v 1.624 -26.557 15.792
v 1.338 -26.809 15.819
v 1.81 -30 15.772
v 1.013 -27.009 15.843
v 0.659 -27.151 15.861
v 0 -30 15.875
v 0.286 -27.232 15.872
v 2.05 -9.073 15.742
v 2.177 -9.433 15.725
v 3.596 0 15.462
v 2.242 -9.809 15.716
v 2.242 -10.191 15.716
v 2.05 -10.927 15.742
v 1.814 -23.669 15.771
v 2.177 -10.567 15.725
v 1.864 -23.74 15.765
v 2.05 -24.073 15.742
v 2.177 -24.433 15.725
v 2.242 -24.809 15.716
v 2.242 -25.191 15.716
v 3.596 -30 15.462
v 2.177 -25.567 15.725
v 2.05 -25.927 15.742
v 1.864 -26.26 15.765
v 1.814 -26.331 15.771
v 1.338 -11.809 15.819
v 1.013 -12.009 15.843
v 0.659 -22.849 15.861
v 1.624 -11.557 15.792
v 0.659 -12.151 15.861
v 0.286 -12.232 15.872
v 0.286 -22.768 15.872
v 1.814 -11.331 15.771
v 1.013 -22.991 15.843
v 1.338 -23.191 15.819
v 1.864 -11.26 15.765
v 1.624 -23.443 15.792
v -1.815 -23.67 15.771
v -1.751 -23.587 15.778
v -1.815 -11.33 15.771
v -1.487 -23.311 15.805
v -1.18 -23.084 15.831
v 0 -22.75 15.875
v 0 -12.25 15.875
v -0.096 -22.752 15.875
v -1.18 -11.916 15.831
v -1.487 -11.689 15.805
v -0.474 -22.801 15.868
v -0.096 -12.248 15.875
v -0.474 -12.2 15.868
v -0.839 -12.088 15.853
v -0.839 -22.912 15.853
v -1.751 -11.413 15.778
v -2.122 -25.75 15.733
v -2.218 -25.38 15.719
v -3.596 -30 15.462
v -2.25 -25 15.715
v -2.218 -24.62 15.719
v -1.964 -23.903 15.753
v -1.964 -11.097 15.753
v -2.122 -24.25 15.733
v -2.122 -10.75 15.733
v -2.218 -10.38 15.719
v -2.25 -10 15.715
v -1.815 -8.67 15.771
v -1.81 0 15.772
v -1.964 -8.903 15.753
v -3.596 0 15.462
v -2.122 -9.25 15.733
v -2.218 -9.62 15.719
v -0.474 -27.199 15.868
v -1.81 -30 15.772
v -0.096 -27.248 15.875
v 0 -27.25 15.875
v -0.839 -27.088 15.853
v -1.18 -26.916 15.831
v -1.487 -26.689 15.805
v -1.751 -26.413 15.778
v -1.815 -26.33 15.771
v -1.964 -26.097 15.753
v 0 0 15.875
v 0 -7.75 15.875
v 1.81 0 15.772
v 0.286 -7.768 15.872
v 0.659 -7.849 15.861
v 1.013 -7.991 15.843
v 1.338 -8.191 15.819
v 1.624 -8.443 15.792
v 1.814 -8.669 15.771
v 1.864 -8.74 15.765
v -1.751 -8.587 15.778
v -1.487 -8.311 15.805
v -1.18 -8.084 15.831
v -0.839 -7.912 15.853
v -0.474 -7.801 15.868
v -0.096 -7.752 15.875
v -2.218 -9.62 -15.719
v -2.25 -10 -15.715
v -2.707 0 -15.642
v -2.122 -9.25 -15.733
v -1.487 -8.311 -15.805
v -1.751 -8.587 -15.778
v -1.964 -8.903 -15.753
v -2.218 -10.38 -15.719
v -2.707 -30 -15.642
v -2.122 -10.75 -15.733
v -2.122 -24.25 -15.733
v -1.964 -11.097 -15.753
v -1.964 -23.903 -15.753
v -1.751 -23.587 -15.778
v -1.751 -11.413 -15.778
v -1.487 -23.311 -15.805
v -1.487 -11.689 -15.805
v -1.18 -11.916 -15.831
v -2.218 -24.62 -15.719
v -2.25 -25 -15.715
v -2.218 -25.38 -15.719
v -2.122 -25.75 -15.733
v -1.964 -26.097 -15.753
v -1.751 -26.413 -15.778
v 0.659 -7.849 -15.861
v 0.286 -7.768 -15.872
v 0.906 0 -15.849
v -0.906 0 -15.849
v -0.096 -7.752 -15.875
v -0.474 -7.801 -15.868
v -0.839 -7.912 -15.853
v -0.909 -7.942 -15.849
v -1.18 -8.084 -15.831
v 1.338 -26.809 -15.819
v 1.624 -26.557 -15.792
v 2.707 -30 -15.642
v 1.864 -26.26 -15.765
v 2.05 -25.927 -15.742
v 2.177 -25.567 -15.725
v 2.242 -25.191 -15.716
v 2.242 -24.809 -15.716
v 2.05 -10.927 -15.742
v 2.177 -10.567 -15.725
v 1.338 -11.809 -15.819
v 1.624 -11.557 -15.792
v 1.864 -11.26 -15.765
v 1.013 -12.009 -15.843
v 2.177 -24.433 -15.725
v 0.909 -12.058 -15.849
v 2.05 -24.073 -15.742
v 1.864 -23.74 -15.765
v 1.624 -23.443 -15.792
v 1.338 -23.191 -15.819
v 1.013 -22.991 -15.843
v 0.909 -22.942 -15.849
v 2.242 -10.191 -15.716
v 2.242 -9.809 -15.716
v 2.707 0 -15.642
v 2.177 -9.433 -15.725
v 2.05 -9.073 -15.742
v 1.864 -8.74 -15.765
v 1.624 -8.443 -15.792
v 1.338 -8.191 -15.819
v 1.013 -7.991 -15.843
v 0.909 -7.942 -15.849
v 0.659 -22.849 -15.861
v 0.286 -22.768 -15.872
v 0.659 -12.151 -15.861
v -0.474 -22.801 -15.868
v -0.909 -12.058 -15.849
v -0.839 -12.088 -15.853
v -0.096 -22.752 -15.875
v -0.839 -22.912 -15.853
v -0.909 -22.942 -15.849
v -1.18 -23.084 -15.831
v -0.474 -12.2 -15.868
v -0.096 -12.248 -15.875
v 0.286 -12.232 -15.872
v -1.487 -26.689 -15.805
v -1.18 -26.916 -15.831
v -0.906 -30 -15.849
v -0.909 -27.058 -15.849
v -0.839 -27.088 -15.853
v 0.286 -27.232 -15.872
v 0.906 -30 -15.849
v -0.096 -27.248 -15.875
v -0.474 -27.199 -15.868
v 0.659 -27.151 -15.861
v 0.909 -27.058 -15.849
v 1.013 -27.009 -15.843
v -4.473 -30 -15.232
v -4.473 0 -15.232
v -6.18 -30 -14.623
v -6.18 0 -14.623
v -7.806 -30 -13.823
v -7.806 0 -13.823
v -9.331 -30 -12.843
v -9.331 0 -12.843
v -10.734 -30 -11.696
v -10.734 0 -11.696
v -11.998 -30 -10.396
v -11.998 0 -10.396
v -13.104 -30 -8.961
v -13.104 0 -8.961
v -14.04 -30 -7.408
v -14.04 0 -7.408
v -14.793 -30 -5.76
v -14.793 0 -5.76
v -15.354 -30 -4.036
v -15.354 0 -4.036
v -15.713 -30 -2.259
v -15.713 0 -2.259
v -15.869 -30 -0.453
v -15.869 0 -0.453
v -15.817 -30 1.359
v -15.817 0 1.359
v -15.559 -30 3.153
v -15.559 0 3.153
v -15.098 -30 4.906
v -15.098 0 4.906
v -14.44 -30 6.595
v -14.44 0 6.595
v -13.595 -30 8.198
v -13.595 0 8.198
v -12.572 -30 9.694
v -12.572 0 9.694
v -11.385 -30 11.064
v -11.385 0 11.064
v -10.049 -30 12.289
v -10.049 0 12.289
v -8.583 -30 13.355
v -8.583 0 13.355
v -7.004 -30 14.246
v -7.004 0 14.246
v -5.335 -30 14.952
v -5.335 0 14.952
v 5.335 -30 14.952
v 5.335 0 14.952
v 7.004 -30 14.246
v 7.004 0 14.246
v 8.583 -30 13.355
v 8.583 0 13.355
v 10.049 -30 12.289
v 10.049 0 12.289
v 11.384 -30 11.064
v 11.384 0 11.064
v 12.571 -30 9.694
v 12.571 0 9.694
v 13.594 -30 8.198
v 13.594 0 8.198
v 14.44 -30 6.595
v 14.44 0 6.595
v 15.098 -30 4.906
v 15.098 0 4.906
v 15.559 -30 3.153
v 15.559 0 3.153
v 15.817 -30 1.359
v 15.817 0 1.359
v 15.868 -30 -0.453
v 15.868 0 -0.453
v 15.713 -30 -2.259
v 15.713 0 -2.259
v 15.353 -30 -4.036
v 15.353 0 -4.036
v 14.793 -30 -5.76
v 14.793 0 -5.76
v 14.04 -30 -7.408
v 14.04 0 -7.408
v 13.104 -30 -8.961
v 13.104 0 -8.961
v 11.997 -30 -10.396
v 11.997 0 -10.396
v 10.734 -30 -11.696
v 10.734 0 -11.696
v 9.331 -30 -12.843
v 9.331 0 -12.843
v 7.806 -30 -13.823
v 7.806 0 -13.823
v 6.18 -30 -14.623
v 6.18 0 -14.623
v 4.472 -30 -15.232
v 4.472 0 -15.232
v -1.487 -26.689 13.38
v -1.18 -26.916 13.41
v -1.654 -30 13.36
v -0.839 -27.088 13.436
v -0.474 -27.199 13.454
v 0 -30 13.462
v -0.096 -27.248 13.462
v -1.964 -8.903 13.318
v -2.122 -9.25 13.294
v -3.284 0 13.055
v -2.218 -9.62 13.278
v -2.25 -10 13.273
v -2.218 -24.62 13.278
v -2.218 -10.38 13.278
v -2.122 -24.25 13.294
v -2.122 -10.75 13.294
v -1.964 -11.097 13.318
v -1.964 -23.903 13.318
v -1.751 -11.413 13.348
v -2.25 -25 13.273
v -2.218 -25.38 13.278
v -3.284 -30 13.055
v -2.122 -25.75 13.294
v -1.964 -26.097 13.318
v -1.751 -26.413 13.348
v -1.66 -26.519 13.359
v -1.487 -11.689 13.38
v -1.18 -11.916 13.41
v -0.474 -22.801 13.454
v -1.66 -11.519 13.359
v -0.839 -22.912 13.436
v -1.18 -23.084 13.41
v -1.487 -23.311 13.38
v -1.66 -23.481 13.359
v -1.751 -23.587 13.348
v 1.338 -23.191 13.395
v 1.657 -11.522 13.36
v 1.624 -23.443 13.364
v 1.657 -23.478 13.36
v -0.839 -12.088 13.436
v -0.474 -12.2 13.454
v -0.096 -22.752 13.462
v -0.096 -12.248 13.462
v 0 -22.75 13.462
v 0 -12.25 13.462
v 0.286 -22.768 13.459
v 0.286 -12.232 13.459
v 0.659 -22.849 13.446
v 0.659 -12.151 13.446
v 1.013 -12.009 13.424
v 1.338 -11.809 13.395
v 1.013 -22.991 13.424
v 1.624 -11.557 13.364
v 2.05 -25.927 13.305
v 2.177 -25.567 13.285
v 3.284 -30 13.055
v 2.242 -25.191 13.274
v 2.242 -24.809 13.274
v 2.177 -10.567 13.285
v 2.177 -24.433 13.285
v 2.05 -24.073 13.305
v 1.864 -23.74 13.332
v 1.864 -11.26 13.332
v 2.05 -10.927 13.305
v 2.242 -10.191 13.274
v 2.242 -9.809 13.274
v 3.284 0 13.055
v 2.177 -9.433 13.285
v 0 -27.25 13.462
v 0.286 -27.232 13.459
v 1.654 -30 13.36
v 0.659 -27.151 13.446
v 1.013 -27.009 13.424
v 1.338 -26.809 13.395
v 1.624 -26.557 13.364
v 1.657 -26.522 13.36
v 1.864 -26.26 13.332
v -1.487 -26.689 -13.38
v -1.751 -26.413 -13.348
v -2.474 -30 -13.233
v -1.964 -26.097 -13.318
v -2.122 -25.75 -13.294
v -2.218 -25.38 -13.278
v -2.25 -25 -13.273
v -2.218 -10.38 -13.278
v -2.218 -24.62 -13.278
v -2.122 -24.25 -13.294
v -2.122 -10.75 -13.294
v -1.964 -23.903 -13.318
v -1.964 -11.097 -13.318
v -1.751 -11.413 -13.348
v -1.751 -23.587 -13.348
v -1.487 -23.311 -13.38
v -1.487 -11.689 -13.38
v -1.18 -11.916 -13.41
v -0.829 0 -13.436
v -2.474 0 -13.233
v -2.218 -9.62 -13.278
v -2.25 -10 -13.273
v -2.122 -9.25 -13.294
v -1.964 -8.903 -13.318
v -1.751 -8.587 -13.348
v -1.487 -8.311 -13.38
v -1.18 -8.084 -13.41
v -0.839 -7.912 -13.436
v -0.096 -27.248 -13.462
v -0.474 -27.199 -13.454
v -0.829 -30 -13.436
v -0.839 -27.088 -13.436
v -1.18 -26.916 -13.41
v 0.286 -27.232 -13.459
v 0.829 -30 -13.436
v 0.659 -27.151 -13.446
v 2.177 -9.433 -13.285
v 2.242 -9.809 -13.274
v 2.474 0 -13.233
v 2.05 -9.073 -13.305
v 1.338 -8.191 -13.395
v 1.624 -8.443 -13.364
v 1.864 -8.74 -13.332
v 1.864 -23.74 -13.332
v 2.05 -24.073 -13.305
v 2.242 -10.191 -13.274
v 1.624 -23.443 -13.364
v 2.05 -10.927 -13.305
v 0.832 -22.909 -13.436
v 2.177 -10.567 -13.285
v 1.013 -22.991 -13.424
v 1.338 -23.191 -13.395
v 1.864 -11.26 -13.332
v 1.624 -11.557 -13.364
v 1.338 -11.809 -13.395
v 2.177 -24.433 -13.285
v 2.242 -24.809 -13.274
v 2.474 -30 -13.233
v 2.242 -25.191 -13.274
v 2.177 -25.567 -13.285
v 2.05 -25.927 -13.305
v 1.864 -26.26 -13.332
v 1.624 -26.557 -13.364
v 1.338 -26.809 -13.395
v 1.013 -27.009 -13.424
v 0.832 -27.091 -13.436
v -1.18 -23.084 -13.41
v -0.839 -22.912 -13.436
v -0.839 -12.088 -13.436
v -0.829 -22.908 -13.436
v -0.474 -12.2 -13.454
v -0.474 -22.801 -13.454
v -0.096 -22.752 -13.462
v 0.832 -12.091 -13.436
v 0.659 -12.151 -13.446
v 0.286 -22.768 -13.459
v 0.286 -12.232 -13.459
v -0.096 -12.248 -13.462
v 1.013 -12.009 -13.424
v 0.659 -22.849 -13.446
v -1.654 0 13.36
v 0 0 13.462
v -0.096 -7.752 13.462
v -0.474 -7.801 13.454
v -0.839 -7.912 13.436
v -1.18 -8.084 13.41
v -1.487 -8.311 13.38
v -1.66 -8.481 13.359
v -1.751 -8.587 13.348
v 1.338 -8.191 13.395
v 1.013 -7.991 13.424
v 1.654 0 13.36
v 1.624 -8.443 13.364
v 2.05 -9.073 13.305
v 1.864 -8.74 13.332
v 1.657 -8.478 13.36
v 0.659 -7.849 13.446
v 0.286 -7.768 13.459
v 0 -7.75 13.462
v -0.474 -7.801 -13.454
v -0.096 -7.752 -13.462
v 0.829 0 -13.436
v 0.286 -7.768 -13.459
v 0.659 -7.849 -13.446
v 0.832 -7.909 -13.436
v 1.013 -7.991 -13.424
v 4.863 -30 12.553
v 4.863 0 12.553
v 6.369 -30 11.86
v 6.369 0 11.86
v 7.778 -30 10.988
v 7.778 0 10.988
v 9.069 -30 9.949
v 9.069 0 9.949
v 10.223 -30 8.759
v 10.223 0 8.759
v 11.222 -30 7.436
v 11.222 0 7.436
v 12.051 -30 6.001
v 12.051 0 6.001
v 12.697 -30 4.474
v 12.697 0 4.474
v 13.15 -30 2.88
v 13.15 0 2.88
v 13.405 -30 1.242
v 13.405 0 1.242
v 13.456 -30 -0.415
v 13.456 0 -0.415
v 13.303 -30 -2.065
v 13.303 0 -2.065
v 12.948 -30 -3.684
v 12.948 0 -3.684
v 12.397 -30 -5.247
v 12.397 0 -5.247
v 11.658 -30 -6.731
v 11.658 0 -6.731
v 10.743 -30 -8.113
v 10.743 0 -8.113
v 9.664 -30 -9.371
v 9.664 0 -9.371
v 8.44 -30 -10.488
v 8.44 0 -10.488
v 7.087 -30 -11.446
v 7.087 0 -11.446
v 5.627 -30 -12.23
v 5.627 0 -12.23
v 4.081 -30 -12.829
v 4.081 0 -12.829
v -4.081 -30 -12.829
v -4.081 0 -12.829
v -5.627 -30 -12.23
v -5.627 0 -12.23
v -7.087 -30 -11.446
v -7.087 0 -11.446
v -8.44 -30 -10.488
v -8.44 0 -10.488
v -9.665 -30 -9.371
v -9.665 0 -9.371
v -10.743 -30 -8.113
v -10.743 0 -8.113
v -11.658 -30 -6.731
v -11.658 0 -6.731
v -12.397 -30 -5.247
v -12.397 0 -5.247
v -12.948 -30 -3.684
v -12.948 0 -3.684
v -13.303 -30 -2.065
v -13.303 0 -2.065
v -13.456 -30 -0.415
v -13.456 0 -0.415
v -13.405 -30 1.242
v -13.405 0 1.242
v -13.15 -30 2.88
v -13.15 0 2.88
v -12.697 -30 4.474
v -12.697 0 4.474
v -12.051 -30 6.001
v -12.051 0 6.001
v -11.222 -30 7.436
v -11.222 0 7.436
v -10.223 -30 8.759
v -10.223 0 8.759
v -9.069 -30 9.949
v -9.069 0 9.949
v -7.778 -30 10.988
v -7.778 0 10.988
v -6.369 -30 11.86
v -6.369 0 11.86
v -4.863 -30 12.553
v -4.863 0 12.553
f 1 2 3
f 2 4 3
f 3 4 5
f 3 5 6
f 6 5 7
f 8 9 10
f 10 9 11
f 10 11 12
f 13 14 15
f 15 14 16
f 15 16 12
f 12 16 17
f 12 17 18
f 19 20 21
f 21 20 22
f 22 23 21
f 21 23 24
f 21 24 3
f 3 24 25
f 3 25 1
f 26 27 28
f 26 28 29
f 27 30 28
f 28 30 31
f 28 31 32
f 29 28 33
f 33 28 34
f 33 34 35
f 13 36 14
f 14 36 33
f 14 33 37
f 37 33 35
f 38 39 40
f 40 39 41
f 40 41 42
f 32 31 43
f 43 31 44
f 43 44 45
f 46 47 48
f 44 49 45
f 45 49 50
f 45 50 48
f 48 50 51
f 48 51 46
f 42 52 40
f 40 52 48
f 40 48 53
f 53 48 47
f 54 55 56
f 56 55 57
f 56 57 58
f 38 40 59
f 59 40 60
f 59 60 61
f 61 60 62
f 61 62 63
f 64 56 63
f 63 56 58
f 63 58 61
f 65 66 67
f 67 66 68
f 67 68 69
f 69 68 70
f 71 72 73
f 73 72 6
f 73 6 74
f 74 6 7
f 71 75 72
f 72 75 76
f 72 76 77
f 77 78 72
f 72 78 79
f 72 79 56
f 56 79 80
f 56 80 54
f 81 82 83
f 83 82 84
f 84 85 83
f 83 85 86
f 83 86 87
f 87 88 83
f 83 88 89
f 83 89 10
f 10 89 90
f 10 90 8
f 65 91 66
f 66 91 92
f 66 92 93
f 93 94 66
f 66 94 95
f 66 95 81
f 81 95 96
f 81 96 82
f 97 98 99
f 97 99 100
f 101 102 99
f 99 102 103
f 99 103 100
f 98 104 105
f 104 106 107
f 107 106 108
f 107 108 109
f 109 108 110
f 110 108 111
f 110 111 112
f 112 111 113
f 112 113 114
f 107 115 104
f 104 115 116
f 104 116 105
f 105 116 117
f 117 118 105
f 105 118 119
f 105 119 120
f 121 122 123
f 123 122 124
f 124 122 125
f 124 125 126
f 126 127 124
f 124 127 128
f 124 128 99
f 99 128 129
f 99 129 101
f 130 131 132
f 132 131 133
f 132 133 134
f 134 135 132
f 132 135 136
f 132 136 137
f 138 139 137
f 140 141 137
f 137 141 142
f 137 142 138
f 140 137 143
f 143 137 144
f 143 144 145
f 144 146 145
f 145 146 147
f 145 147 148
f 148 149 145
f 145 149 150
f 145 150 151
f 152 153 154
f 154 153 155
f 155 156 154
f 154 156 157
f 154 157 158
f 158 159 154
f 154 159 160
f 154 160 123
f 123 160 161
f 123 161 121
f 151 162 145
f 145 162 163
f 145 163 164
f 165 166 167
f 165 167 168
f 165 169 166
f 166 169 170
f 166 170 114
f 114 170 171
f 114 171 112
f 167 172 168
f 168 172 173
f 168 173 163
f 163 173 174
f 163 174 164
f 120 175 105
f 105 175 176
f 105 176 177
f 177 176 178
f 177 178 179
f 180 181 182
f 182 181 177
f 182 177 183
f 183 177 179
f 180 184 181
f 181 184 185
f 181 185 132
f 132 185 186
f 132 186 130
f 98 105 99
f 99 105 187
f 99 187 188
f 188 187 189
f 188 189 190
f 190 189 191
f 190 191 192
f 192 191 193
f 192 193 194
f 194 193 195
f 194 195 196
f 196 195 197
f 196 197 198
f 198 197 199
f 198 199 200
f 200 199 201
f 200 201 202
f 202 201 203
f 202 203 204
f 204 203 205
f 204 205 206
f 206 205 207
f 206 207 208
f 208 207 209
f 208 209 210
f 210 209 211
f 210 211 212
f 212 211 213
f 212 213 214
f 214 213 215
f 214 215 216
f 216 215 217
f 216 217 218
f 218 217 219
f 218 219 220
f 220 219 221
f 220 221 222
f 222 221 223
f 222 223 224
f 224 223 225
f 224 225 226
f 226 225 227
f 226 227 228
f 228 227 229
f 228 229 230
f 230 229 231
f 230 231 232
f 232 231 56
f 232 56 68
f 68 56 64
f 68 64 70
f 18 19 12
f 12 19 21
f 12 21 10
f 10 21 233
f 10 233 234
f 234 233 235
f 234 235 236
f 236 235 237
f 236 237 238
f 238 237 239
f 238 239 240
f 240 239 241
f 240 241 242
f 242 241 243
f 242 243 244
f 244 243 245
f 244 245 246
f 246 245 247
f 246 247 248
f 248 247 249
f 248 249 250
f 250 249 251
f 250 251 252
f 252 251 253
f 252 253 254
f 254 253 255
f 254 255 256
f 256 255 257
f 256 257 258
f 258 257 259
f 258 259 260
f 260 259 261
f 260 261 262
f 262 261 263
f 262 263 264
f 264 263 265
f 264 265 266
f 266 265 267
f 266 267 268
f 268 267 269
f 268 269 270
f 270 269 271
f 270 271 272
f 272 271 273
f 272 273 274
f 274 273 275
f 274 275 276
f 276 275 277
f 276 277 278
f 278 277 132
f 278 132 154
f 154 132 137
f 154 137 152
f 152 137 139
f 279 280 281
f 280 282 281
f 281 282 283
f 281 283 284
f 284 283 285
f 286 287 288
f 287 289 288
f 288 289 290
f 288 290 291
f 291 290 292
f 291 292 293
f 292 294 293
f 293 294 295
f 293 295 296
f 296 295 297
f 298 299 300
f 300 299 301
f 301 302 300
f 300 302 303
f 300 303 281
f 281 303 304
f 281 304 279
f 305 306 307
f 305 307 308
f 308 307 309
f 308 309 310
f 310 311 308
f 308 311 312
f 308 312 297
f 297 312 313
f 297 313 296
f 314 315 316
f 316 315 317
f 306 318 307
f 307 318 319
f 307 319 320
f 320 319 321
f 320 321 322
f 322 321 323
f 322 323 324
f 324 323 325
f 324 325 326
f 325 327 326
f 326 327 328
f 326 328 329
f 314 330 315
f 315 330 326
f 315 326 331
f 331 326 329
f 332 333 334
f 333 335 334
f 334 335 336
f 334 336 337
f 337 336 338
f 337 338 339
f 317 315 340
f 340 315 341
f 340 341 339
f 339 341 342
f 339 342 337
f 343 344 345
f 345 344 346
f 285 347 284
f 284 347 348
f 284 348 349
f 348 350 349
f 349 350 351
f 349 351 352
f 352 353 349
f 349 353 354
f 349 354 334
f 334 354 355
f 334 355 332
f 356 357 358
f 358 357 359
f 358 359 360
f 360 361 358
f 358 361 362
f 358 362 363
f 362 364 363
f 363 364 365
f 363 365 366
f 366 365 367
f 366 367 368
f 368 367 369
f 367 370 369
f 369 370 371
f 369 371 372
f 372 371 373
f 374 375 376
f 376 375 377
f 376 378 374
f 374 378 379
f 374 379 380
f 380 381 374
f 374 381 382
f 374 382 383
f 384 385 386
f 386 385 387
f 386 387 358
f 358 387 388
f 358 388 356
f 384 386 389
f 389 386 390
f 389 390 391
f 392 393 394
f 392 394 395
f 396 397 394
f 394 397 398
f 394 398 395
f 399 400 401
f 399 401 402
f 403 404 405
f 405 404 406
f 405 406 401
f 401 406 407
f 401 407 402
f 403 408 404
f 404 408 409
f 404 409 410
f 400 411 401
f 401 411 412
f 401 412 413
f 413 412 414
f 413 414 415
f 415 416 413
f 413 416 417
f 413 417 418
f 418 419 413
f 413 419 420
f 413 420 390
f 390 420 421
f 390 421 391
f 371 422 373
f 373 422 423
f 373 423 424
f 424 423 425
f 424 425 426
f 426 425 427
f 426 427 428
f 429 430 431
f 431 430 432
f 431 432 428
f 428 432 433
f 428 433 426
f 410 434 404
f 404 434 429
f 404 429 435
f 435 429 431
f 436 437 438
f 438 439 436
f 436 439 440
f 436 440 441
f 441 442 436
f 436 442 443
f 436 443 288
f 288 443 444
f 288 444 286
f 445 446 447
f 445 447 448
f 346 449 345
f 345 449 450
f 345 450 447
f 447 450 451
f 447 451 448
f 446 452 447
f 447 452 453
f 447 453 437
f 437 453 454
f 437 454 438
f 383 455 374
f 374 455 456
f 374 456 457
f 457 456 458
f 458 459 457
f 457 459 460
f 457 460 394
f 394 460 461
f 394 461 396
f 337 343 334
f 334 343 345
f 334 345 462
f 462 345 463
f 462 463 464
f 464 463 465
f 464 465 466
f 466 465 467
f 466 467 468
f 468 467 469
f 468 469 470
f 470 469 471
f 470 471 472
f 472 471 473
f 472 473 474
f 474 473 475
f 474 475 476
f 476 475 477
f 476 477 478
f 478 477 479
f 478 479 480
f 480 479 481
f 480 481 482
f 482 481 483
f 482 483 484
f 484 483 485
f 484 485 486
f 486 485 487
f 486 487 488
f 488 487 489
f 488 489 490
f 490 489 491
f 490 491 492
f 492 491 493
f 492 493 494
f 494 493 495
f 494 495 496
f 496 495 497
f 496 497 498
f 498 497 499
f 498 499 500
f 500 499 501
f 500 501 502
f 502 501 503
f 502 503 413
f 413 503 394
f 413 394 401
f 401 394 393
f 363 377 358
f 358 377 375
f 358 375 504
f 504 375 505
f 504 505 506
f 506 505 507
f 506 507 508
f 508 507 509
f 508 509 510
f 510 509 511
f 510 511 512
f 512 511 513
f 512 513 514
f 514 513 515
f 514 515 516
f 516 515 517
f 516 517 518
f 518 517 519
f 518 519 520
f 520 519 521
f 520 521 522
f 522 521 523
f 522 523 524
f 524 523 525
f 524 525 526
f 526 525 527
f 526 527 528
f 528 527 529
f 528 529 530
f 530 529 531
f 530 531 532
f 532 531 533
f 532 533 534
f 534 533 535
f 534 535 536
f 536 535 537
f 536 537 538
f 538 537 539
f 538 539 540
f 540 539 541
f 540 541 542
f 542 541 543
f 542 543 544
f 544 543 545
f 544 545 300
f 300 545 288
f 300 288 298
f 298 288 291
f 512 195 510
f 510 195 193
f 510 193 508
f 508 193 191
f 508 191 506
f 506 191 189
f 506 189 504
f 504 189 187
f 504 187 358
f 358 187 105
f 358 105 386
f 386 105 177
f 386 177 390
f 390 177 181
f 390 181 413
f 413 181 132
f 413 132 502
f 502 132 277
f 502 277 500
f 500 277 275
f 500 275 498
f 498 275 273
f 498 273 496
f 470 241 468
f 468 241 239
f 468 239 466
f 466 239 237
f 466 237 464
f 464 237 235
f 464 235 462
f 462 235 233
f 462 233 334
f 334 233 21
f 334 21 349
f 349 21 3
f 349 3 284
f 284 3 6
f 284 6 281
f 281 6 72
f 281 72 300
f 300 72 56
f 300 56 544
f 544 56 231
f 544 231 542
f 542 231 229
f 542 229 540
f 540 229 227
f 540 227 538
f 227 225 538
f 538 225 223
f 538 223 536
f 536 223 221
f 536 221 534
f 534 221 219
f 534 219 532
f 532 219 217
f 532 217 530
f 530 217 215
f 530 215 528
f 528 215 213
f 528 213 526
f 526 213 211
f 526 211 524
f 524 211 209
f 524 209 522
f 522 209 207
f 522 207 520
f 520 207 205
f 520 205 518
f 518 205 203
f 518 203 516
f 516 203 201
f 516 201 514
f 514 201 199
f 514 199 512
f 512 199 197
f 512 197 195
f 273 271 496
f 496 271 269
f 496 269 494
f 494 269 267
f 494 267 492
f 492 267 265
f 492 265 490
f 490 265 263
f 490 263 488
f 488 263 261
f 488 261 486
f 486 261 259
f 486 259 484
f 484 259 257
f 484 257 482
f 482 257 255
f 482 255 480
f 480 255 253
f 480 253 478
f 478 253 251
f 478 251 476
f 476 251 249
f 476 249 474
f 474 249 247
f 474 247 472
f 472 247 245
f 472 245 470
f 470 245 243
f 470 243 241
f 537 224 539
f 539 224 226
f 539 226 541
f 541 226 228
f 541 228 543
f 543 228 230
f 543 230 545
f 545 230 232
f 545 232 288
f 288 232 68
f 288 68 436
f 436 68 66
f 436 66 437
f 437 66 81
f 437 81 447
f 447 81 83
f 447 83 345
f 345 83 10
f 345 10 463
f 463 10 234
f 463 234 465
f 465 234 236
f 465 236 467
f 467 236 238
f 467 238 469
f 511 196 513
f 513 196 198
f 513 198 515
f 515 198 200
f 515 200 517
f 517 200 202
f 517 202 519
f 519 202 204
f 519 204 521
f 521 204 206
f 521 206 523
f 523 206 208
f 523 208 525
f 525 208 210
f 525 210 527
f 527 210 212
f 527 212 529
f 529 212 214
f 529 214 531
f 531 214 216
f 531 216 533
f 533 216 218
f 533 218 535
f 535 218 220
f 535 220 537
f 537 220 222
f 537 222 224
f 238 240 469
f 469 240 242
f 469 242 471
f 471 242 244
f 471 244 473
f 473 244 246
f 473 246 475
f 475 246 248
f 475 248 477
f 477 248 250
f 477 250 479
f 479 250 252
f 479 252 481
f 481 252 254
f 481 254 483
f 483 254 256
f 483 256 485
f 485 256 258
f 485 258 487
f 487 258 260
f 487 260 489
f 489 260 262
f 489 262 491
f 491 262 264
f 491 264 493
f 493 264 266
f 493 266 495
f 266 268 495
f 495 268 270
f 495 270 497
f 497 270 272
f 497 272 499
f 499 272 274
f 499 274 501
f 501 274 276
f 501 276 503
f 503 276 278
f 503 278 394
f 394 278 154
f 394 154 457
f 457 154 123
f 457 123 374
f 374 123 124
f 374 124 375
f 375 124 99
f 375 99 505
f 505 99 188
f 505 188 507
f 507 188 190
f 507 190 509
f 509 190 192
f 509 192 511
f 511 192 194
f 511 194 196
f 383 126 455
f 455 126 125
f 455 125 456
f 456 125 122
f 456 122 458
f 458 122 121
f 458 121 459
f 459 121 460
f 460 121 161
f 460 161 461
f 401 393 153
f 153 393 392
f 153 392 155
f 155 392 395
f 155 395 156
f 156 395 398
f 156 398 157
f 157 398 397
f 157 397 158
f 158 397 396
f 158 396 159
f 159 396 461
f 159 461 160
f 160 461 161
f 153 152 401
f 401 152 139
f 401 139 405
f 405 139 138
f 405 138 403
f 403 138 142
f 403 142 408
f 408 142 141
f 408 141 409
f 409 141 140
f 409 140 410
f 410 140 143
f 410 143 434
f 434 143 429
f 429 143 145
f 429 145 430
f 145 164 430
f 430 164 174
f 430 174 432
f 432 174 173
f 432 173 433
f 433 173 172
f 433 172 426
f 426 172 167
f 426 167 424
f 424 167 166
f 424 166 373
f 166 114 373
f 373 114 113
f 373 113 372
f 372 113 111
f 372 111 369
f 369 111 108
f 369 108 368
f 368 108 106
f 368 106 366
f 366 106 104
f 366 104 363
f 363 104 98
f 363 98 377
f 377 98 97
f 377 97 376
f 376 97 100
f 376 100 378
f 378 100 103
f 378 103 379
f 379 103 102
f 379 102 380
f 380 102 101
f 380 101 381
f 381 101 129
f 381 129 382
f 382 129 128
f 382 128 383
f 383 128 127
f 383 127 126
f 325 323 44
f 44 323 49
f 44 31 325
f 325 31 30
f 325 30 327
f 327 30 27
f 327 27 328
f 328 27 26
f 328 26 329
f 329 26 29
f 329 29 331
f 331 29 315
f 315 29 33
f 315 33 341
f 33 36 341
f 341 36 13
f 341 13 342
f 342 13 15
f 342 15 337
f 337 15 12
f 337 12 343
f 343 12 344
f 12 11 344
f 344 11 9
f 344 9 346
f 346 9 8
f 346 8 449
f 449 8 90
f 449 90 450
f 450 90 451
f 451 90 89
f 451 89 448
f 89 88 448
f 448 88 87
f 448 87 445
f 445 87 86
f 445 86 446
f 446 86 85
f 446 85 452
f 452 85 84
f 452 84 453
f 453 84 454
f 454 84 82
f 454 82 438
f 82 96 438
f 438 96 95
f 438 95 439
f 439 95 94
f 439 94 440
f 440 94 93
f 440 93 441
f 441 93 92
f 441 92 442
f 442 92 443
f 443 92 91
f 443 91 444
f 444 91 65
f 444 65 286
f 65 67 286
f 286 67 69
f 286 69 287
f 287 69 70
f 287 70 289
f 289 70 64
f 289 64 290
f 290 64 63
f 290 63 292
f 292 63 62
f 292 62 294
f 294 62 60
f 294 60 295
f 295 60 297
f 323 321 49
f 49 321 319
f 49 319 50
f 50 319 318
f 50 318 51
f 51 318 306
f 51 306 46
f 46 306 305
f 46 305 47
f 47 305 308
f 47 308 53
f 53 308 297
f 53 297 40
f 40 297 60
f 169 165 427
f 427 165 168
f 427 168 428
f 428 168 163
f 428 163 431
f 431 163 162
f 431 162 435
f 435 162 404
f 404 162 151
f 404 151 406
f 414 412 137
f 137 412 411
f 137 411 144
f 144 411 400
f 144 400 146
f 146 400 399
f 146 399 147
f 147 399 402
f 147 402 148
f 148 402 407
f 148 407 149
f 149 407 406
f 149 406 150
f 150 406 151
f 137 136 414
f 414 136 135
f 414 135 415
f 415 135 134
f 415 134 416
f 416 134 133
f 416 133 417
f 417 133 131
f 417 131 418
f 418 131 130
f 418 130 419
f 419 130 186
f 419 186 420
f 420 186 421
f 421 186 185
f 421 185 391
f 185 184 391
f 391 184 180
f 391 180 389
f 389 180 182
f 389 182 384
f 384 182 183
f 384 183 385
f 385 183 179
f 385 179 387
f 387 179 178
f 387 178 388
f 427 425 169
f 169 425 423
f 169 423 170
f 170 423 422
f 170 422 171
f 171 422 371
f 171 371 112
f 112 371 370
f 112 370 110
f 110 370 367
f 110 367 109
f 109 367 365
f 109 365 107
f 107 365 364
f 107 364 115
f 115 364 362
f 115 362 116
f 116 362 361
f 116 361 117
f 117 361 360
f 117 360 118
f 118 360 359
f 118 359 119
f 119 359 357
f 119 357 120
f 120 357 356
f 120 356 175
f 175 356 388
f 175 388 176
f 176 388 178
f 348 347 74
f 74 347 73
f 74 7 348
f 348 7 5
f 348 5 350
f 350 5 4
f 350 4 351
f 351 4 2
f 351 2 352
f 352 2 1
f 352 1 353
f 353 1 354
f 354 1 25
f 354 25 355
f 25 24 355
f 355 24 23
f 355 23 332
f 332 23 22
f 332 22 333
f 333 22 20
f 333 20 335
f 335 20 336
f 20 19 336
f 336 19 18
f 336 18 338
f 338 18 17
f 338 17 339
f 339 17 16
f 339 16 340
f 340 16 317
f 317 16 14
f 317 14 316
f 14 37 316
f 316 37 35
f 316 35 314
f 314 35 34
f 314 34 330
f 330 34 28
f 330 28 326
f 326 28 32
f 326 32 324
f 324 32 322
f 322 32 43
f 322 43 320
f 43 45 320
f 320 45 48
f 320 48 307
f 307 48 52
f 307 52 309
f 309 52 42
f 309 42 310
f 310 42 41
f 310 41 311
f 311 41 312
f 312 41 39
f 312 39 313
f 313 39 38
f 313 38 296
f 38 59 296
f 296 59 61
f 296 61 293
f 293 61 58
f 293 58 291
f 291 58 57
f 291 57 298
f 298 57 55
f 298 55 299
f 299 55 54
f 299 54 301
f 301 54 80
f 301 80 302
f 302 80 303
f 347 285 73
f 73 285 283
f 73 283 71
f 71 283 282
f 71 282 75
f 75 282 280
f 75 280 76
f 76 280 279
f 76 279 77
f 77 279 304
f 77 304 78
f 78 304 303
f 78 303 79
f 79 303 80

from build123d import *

# Parameters (mm, degrees)
SKETCH1_R               = 15.875
SKETCH1_R_2             = 13.462
BOSS_EXTRUDE1_DEPTH     = 30
CUT_EXTRUDE1_DEPTH      = 30
CUT_EXTRUDE1_DEPTH_BACK = 30
SKETCH2_R               = 2.25


with BuildPart() as part:
    # Sketch1 → Boss-Extrude1 (new body)
    with BuildSketch(Plane(origin=(0, 0, 0), x_dir=(1, 0, 0), z_dir=(0, 1, 0))):
        Circle(SKETCH1_R)
        Circle(SKETCH1_R_2, mode=Mode.SUBTRACT)
    extrude(amount=-BOSS_EXTRUDE1_DEPTH)

    # Sketch2 → Cut-Extrude1 (cut, two sides: drawn at the far end of the back side and taken through both)
    with BuildSketch(Plane.XY.offset(-CUT_EXTRUDE1_DEPTH_BACK)):
        with Locations((0, -25)):
            Circle(SKETCH2_R)
        with Locations((0, -10)):
            Circle(SKETCH2_R)
    extrude(amount=CUT_EXTRUDE1_DEPTH + CUT_EXTRUDE1_DEPTH_BACK, mode=Mode.SUBTRACT)


solid = part.part
